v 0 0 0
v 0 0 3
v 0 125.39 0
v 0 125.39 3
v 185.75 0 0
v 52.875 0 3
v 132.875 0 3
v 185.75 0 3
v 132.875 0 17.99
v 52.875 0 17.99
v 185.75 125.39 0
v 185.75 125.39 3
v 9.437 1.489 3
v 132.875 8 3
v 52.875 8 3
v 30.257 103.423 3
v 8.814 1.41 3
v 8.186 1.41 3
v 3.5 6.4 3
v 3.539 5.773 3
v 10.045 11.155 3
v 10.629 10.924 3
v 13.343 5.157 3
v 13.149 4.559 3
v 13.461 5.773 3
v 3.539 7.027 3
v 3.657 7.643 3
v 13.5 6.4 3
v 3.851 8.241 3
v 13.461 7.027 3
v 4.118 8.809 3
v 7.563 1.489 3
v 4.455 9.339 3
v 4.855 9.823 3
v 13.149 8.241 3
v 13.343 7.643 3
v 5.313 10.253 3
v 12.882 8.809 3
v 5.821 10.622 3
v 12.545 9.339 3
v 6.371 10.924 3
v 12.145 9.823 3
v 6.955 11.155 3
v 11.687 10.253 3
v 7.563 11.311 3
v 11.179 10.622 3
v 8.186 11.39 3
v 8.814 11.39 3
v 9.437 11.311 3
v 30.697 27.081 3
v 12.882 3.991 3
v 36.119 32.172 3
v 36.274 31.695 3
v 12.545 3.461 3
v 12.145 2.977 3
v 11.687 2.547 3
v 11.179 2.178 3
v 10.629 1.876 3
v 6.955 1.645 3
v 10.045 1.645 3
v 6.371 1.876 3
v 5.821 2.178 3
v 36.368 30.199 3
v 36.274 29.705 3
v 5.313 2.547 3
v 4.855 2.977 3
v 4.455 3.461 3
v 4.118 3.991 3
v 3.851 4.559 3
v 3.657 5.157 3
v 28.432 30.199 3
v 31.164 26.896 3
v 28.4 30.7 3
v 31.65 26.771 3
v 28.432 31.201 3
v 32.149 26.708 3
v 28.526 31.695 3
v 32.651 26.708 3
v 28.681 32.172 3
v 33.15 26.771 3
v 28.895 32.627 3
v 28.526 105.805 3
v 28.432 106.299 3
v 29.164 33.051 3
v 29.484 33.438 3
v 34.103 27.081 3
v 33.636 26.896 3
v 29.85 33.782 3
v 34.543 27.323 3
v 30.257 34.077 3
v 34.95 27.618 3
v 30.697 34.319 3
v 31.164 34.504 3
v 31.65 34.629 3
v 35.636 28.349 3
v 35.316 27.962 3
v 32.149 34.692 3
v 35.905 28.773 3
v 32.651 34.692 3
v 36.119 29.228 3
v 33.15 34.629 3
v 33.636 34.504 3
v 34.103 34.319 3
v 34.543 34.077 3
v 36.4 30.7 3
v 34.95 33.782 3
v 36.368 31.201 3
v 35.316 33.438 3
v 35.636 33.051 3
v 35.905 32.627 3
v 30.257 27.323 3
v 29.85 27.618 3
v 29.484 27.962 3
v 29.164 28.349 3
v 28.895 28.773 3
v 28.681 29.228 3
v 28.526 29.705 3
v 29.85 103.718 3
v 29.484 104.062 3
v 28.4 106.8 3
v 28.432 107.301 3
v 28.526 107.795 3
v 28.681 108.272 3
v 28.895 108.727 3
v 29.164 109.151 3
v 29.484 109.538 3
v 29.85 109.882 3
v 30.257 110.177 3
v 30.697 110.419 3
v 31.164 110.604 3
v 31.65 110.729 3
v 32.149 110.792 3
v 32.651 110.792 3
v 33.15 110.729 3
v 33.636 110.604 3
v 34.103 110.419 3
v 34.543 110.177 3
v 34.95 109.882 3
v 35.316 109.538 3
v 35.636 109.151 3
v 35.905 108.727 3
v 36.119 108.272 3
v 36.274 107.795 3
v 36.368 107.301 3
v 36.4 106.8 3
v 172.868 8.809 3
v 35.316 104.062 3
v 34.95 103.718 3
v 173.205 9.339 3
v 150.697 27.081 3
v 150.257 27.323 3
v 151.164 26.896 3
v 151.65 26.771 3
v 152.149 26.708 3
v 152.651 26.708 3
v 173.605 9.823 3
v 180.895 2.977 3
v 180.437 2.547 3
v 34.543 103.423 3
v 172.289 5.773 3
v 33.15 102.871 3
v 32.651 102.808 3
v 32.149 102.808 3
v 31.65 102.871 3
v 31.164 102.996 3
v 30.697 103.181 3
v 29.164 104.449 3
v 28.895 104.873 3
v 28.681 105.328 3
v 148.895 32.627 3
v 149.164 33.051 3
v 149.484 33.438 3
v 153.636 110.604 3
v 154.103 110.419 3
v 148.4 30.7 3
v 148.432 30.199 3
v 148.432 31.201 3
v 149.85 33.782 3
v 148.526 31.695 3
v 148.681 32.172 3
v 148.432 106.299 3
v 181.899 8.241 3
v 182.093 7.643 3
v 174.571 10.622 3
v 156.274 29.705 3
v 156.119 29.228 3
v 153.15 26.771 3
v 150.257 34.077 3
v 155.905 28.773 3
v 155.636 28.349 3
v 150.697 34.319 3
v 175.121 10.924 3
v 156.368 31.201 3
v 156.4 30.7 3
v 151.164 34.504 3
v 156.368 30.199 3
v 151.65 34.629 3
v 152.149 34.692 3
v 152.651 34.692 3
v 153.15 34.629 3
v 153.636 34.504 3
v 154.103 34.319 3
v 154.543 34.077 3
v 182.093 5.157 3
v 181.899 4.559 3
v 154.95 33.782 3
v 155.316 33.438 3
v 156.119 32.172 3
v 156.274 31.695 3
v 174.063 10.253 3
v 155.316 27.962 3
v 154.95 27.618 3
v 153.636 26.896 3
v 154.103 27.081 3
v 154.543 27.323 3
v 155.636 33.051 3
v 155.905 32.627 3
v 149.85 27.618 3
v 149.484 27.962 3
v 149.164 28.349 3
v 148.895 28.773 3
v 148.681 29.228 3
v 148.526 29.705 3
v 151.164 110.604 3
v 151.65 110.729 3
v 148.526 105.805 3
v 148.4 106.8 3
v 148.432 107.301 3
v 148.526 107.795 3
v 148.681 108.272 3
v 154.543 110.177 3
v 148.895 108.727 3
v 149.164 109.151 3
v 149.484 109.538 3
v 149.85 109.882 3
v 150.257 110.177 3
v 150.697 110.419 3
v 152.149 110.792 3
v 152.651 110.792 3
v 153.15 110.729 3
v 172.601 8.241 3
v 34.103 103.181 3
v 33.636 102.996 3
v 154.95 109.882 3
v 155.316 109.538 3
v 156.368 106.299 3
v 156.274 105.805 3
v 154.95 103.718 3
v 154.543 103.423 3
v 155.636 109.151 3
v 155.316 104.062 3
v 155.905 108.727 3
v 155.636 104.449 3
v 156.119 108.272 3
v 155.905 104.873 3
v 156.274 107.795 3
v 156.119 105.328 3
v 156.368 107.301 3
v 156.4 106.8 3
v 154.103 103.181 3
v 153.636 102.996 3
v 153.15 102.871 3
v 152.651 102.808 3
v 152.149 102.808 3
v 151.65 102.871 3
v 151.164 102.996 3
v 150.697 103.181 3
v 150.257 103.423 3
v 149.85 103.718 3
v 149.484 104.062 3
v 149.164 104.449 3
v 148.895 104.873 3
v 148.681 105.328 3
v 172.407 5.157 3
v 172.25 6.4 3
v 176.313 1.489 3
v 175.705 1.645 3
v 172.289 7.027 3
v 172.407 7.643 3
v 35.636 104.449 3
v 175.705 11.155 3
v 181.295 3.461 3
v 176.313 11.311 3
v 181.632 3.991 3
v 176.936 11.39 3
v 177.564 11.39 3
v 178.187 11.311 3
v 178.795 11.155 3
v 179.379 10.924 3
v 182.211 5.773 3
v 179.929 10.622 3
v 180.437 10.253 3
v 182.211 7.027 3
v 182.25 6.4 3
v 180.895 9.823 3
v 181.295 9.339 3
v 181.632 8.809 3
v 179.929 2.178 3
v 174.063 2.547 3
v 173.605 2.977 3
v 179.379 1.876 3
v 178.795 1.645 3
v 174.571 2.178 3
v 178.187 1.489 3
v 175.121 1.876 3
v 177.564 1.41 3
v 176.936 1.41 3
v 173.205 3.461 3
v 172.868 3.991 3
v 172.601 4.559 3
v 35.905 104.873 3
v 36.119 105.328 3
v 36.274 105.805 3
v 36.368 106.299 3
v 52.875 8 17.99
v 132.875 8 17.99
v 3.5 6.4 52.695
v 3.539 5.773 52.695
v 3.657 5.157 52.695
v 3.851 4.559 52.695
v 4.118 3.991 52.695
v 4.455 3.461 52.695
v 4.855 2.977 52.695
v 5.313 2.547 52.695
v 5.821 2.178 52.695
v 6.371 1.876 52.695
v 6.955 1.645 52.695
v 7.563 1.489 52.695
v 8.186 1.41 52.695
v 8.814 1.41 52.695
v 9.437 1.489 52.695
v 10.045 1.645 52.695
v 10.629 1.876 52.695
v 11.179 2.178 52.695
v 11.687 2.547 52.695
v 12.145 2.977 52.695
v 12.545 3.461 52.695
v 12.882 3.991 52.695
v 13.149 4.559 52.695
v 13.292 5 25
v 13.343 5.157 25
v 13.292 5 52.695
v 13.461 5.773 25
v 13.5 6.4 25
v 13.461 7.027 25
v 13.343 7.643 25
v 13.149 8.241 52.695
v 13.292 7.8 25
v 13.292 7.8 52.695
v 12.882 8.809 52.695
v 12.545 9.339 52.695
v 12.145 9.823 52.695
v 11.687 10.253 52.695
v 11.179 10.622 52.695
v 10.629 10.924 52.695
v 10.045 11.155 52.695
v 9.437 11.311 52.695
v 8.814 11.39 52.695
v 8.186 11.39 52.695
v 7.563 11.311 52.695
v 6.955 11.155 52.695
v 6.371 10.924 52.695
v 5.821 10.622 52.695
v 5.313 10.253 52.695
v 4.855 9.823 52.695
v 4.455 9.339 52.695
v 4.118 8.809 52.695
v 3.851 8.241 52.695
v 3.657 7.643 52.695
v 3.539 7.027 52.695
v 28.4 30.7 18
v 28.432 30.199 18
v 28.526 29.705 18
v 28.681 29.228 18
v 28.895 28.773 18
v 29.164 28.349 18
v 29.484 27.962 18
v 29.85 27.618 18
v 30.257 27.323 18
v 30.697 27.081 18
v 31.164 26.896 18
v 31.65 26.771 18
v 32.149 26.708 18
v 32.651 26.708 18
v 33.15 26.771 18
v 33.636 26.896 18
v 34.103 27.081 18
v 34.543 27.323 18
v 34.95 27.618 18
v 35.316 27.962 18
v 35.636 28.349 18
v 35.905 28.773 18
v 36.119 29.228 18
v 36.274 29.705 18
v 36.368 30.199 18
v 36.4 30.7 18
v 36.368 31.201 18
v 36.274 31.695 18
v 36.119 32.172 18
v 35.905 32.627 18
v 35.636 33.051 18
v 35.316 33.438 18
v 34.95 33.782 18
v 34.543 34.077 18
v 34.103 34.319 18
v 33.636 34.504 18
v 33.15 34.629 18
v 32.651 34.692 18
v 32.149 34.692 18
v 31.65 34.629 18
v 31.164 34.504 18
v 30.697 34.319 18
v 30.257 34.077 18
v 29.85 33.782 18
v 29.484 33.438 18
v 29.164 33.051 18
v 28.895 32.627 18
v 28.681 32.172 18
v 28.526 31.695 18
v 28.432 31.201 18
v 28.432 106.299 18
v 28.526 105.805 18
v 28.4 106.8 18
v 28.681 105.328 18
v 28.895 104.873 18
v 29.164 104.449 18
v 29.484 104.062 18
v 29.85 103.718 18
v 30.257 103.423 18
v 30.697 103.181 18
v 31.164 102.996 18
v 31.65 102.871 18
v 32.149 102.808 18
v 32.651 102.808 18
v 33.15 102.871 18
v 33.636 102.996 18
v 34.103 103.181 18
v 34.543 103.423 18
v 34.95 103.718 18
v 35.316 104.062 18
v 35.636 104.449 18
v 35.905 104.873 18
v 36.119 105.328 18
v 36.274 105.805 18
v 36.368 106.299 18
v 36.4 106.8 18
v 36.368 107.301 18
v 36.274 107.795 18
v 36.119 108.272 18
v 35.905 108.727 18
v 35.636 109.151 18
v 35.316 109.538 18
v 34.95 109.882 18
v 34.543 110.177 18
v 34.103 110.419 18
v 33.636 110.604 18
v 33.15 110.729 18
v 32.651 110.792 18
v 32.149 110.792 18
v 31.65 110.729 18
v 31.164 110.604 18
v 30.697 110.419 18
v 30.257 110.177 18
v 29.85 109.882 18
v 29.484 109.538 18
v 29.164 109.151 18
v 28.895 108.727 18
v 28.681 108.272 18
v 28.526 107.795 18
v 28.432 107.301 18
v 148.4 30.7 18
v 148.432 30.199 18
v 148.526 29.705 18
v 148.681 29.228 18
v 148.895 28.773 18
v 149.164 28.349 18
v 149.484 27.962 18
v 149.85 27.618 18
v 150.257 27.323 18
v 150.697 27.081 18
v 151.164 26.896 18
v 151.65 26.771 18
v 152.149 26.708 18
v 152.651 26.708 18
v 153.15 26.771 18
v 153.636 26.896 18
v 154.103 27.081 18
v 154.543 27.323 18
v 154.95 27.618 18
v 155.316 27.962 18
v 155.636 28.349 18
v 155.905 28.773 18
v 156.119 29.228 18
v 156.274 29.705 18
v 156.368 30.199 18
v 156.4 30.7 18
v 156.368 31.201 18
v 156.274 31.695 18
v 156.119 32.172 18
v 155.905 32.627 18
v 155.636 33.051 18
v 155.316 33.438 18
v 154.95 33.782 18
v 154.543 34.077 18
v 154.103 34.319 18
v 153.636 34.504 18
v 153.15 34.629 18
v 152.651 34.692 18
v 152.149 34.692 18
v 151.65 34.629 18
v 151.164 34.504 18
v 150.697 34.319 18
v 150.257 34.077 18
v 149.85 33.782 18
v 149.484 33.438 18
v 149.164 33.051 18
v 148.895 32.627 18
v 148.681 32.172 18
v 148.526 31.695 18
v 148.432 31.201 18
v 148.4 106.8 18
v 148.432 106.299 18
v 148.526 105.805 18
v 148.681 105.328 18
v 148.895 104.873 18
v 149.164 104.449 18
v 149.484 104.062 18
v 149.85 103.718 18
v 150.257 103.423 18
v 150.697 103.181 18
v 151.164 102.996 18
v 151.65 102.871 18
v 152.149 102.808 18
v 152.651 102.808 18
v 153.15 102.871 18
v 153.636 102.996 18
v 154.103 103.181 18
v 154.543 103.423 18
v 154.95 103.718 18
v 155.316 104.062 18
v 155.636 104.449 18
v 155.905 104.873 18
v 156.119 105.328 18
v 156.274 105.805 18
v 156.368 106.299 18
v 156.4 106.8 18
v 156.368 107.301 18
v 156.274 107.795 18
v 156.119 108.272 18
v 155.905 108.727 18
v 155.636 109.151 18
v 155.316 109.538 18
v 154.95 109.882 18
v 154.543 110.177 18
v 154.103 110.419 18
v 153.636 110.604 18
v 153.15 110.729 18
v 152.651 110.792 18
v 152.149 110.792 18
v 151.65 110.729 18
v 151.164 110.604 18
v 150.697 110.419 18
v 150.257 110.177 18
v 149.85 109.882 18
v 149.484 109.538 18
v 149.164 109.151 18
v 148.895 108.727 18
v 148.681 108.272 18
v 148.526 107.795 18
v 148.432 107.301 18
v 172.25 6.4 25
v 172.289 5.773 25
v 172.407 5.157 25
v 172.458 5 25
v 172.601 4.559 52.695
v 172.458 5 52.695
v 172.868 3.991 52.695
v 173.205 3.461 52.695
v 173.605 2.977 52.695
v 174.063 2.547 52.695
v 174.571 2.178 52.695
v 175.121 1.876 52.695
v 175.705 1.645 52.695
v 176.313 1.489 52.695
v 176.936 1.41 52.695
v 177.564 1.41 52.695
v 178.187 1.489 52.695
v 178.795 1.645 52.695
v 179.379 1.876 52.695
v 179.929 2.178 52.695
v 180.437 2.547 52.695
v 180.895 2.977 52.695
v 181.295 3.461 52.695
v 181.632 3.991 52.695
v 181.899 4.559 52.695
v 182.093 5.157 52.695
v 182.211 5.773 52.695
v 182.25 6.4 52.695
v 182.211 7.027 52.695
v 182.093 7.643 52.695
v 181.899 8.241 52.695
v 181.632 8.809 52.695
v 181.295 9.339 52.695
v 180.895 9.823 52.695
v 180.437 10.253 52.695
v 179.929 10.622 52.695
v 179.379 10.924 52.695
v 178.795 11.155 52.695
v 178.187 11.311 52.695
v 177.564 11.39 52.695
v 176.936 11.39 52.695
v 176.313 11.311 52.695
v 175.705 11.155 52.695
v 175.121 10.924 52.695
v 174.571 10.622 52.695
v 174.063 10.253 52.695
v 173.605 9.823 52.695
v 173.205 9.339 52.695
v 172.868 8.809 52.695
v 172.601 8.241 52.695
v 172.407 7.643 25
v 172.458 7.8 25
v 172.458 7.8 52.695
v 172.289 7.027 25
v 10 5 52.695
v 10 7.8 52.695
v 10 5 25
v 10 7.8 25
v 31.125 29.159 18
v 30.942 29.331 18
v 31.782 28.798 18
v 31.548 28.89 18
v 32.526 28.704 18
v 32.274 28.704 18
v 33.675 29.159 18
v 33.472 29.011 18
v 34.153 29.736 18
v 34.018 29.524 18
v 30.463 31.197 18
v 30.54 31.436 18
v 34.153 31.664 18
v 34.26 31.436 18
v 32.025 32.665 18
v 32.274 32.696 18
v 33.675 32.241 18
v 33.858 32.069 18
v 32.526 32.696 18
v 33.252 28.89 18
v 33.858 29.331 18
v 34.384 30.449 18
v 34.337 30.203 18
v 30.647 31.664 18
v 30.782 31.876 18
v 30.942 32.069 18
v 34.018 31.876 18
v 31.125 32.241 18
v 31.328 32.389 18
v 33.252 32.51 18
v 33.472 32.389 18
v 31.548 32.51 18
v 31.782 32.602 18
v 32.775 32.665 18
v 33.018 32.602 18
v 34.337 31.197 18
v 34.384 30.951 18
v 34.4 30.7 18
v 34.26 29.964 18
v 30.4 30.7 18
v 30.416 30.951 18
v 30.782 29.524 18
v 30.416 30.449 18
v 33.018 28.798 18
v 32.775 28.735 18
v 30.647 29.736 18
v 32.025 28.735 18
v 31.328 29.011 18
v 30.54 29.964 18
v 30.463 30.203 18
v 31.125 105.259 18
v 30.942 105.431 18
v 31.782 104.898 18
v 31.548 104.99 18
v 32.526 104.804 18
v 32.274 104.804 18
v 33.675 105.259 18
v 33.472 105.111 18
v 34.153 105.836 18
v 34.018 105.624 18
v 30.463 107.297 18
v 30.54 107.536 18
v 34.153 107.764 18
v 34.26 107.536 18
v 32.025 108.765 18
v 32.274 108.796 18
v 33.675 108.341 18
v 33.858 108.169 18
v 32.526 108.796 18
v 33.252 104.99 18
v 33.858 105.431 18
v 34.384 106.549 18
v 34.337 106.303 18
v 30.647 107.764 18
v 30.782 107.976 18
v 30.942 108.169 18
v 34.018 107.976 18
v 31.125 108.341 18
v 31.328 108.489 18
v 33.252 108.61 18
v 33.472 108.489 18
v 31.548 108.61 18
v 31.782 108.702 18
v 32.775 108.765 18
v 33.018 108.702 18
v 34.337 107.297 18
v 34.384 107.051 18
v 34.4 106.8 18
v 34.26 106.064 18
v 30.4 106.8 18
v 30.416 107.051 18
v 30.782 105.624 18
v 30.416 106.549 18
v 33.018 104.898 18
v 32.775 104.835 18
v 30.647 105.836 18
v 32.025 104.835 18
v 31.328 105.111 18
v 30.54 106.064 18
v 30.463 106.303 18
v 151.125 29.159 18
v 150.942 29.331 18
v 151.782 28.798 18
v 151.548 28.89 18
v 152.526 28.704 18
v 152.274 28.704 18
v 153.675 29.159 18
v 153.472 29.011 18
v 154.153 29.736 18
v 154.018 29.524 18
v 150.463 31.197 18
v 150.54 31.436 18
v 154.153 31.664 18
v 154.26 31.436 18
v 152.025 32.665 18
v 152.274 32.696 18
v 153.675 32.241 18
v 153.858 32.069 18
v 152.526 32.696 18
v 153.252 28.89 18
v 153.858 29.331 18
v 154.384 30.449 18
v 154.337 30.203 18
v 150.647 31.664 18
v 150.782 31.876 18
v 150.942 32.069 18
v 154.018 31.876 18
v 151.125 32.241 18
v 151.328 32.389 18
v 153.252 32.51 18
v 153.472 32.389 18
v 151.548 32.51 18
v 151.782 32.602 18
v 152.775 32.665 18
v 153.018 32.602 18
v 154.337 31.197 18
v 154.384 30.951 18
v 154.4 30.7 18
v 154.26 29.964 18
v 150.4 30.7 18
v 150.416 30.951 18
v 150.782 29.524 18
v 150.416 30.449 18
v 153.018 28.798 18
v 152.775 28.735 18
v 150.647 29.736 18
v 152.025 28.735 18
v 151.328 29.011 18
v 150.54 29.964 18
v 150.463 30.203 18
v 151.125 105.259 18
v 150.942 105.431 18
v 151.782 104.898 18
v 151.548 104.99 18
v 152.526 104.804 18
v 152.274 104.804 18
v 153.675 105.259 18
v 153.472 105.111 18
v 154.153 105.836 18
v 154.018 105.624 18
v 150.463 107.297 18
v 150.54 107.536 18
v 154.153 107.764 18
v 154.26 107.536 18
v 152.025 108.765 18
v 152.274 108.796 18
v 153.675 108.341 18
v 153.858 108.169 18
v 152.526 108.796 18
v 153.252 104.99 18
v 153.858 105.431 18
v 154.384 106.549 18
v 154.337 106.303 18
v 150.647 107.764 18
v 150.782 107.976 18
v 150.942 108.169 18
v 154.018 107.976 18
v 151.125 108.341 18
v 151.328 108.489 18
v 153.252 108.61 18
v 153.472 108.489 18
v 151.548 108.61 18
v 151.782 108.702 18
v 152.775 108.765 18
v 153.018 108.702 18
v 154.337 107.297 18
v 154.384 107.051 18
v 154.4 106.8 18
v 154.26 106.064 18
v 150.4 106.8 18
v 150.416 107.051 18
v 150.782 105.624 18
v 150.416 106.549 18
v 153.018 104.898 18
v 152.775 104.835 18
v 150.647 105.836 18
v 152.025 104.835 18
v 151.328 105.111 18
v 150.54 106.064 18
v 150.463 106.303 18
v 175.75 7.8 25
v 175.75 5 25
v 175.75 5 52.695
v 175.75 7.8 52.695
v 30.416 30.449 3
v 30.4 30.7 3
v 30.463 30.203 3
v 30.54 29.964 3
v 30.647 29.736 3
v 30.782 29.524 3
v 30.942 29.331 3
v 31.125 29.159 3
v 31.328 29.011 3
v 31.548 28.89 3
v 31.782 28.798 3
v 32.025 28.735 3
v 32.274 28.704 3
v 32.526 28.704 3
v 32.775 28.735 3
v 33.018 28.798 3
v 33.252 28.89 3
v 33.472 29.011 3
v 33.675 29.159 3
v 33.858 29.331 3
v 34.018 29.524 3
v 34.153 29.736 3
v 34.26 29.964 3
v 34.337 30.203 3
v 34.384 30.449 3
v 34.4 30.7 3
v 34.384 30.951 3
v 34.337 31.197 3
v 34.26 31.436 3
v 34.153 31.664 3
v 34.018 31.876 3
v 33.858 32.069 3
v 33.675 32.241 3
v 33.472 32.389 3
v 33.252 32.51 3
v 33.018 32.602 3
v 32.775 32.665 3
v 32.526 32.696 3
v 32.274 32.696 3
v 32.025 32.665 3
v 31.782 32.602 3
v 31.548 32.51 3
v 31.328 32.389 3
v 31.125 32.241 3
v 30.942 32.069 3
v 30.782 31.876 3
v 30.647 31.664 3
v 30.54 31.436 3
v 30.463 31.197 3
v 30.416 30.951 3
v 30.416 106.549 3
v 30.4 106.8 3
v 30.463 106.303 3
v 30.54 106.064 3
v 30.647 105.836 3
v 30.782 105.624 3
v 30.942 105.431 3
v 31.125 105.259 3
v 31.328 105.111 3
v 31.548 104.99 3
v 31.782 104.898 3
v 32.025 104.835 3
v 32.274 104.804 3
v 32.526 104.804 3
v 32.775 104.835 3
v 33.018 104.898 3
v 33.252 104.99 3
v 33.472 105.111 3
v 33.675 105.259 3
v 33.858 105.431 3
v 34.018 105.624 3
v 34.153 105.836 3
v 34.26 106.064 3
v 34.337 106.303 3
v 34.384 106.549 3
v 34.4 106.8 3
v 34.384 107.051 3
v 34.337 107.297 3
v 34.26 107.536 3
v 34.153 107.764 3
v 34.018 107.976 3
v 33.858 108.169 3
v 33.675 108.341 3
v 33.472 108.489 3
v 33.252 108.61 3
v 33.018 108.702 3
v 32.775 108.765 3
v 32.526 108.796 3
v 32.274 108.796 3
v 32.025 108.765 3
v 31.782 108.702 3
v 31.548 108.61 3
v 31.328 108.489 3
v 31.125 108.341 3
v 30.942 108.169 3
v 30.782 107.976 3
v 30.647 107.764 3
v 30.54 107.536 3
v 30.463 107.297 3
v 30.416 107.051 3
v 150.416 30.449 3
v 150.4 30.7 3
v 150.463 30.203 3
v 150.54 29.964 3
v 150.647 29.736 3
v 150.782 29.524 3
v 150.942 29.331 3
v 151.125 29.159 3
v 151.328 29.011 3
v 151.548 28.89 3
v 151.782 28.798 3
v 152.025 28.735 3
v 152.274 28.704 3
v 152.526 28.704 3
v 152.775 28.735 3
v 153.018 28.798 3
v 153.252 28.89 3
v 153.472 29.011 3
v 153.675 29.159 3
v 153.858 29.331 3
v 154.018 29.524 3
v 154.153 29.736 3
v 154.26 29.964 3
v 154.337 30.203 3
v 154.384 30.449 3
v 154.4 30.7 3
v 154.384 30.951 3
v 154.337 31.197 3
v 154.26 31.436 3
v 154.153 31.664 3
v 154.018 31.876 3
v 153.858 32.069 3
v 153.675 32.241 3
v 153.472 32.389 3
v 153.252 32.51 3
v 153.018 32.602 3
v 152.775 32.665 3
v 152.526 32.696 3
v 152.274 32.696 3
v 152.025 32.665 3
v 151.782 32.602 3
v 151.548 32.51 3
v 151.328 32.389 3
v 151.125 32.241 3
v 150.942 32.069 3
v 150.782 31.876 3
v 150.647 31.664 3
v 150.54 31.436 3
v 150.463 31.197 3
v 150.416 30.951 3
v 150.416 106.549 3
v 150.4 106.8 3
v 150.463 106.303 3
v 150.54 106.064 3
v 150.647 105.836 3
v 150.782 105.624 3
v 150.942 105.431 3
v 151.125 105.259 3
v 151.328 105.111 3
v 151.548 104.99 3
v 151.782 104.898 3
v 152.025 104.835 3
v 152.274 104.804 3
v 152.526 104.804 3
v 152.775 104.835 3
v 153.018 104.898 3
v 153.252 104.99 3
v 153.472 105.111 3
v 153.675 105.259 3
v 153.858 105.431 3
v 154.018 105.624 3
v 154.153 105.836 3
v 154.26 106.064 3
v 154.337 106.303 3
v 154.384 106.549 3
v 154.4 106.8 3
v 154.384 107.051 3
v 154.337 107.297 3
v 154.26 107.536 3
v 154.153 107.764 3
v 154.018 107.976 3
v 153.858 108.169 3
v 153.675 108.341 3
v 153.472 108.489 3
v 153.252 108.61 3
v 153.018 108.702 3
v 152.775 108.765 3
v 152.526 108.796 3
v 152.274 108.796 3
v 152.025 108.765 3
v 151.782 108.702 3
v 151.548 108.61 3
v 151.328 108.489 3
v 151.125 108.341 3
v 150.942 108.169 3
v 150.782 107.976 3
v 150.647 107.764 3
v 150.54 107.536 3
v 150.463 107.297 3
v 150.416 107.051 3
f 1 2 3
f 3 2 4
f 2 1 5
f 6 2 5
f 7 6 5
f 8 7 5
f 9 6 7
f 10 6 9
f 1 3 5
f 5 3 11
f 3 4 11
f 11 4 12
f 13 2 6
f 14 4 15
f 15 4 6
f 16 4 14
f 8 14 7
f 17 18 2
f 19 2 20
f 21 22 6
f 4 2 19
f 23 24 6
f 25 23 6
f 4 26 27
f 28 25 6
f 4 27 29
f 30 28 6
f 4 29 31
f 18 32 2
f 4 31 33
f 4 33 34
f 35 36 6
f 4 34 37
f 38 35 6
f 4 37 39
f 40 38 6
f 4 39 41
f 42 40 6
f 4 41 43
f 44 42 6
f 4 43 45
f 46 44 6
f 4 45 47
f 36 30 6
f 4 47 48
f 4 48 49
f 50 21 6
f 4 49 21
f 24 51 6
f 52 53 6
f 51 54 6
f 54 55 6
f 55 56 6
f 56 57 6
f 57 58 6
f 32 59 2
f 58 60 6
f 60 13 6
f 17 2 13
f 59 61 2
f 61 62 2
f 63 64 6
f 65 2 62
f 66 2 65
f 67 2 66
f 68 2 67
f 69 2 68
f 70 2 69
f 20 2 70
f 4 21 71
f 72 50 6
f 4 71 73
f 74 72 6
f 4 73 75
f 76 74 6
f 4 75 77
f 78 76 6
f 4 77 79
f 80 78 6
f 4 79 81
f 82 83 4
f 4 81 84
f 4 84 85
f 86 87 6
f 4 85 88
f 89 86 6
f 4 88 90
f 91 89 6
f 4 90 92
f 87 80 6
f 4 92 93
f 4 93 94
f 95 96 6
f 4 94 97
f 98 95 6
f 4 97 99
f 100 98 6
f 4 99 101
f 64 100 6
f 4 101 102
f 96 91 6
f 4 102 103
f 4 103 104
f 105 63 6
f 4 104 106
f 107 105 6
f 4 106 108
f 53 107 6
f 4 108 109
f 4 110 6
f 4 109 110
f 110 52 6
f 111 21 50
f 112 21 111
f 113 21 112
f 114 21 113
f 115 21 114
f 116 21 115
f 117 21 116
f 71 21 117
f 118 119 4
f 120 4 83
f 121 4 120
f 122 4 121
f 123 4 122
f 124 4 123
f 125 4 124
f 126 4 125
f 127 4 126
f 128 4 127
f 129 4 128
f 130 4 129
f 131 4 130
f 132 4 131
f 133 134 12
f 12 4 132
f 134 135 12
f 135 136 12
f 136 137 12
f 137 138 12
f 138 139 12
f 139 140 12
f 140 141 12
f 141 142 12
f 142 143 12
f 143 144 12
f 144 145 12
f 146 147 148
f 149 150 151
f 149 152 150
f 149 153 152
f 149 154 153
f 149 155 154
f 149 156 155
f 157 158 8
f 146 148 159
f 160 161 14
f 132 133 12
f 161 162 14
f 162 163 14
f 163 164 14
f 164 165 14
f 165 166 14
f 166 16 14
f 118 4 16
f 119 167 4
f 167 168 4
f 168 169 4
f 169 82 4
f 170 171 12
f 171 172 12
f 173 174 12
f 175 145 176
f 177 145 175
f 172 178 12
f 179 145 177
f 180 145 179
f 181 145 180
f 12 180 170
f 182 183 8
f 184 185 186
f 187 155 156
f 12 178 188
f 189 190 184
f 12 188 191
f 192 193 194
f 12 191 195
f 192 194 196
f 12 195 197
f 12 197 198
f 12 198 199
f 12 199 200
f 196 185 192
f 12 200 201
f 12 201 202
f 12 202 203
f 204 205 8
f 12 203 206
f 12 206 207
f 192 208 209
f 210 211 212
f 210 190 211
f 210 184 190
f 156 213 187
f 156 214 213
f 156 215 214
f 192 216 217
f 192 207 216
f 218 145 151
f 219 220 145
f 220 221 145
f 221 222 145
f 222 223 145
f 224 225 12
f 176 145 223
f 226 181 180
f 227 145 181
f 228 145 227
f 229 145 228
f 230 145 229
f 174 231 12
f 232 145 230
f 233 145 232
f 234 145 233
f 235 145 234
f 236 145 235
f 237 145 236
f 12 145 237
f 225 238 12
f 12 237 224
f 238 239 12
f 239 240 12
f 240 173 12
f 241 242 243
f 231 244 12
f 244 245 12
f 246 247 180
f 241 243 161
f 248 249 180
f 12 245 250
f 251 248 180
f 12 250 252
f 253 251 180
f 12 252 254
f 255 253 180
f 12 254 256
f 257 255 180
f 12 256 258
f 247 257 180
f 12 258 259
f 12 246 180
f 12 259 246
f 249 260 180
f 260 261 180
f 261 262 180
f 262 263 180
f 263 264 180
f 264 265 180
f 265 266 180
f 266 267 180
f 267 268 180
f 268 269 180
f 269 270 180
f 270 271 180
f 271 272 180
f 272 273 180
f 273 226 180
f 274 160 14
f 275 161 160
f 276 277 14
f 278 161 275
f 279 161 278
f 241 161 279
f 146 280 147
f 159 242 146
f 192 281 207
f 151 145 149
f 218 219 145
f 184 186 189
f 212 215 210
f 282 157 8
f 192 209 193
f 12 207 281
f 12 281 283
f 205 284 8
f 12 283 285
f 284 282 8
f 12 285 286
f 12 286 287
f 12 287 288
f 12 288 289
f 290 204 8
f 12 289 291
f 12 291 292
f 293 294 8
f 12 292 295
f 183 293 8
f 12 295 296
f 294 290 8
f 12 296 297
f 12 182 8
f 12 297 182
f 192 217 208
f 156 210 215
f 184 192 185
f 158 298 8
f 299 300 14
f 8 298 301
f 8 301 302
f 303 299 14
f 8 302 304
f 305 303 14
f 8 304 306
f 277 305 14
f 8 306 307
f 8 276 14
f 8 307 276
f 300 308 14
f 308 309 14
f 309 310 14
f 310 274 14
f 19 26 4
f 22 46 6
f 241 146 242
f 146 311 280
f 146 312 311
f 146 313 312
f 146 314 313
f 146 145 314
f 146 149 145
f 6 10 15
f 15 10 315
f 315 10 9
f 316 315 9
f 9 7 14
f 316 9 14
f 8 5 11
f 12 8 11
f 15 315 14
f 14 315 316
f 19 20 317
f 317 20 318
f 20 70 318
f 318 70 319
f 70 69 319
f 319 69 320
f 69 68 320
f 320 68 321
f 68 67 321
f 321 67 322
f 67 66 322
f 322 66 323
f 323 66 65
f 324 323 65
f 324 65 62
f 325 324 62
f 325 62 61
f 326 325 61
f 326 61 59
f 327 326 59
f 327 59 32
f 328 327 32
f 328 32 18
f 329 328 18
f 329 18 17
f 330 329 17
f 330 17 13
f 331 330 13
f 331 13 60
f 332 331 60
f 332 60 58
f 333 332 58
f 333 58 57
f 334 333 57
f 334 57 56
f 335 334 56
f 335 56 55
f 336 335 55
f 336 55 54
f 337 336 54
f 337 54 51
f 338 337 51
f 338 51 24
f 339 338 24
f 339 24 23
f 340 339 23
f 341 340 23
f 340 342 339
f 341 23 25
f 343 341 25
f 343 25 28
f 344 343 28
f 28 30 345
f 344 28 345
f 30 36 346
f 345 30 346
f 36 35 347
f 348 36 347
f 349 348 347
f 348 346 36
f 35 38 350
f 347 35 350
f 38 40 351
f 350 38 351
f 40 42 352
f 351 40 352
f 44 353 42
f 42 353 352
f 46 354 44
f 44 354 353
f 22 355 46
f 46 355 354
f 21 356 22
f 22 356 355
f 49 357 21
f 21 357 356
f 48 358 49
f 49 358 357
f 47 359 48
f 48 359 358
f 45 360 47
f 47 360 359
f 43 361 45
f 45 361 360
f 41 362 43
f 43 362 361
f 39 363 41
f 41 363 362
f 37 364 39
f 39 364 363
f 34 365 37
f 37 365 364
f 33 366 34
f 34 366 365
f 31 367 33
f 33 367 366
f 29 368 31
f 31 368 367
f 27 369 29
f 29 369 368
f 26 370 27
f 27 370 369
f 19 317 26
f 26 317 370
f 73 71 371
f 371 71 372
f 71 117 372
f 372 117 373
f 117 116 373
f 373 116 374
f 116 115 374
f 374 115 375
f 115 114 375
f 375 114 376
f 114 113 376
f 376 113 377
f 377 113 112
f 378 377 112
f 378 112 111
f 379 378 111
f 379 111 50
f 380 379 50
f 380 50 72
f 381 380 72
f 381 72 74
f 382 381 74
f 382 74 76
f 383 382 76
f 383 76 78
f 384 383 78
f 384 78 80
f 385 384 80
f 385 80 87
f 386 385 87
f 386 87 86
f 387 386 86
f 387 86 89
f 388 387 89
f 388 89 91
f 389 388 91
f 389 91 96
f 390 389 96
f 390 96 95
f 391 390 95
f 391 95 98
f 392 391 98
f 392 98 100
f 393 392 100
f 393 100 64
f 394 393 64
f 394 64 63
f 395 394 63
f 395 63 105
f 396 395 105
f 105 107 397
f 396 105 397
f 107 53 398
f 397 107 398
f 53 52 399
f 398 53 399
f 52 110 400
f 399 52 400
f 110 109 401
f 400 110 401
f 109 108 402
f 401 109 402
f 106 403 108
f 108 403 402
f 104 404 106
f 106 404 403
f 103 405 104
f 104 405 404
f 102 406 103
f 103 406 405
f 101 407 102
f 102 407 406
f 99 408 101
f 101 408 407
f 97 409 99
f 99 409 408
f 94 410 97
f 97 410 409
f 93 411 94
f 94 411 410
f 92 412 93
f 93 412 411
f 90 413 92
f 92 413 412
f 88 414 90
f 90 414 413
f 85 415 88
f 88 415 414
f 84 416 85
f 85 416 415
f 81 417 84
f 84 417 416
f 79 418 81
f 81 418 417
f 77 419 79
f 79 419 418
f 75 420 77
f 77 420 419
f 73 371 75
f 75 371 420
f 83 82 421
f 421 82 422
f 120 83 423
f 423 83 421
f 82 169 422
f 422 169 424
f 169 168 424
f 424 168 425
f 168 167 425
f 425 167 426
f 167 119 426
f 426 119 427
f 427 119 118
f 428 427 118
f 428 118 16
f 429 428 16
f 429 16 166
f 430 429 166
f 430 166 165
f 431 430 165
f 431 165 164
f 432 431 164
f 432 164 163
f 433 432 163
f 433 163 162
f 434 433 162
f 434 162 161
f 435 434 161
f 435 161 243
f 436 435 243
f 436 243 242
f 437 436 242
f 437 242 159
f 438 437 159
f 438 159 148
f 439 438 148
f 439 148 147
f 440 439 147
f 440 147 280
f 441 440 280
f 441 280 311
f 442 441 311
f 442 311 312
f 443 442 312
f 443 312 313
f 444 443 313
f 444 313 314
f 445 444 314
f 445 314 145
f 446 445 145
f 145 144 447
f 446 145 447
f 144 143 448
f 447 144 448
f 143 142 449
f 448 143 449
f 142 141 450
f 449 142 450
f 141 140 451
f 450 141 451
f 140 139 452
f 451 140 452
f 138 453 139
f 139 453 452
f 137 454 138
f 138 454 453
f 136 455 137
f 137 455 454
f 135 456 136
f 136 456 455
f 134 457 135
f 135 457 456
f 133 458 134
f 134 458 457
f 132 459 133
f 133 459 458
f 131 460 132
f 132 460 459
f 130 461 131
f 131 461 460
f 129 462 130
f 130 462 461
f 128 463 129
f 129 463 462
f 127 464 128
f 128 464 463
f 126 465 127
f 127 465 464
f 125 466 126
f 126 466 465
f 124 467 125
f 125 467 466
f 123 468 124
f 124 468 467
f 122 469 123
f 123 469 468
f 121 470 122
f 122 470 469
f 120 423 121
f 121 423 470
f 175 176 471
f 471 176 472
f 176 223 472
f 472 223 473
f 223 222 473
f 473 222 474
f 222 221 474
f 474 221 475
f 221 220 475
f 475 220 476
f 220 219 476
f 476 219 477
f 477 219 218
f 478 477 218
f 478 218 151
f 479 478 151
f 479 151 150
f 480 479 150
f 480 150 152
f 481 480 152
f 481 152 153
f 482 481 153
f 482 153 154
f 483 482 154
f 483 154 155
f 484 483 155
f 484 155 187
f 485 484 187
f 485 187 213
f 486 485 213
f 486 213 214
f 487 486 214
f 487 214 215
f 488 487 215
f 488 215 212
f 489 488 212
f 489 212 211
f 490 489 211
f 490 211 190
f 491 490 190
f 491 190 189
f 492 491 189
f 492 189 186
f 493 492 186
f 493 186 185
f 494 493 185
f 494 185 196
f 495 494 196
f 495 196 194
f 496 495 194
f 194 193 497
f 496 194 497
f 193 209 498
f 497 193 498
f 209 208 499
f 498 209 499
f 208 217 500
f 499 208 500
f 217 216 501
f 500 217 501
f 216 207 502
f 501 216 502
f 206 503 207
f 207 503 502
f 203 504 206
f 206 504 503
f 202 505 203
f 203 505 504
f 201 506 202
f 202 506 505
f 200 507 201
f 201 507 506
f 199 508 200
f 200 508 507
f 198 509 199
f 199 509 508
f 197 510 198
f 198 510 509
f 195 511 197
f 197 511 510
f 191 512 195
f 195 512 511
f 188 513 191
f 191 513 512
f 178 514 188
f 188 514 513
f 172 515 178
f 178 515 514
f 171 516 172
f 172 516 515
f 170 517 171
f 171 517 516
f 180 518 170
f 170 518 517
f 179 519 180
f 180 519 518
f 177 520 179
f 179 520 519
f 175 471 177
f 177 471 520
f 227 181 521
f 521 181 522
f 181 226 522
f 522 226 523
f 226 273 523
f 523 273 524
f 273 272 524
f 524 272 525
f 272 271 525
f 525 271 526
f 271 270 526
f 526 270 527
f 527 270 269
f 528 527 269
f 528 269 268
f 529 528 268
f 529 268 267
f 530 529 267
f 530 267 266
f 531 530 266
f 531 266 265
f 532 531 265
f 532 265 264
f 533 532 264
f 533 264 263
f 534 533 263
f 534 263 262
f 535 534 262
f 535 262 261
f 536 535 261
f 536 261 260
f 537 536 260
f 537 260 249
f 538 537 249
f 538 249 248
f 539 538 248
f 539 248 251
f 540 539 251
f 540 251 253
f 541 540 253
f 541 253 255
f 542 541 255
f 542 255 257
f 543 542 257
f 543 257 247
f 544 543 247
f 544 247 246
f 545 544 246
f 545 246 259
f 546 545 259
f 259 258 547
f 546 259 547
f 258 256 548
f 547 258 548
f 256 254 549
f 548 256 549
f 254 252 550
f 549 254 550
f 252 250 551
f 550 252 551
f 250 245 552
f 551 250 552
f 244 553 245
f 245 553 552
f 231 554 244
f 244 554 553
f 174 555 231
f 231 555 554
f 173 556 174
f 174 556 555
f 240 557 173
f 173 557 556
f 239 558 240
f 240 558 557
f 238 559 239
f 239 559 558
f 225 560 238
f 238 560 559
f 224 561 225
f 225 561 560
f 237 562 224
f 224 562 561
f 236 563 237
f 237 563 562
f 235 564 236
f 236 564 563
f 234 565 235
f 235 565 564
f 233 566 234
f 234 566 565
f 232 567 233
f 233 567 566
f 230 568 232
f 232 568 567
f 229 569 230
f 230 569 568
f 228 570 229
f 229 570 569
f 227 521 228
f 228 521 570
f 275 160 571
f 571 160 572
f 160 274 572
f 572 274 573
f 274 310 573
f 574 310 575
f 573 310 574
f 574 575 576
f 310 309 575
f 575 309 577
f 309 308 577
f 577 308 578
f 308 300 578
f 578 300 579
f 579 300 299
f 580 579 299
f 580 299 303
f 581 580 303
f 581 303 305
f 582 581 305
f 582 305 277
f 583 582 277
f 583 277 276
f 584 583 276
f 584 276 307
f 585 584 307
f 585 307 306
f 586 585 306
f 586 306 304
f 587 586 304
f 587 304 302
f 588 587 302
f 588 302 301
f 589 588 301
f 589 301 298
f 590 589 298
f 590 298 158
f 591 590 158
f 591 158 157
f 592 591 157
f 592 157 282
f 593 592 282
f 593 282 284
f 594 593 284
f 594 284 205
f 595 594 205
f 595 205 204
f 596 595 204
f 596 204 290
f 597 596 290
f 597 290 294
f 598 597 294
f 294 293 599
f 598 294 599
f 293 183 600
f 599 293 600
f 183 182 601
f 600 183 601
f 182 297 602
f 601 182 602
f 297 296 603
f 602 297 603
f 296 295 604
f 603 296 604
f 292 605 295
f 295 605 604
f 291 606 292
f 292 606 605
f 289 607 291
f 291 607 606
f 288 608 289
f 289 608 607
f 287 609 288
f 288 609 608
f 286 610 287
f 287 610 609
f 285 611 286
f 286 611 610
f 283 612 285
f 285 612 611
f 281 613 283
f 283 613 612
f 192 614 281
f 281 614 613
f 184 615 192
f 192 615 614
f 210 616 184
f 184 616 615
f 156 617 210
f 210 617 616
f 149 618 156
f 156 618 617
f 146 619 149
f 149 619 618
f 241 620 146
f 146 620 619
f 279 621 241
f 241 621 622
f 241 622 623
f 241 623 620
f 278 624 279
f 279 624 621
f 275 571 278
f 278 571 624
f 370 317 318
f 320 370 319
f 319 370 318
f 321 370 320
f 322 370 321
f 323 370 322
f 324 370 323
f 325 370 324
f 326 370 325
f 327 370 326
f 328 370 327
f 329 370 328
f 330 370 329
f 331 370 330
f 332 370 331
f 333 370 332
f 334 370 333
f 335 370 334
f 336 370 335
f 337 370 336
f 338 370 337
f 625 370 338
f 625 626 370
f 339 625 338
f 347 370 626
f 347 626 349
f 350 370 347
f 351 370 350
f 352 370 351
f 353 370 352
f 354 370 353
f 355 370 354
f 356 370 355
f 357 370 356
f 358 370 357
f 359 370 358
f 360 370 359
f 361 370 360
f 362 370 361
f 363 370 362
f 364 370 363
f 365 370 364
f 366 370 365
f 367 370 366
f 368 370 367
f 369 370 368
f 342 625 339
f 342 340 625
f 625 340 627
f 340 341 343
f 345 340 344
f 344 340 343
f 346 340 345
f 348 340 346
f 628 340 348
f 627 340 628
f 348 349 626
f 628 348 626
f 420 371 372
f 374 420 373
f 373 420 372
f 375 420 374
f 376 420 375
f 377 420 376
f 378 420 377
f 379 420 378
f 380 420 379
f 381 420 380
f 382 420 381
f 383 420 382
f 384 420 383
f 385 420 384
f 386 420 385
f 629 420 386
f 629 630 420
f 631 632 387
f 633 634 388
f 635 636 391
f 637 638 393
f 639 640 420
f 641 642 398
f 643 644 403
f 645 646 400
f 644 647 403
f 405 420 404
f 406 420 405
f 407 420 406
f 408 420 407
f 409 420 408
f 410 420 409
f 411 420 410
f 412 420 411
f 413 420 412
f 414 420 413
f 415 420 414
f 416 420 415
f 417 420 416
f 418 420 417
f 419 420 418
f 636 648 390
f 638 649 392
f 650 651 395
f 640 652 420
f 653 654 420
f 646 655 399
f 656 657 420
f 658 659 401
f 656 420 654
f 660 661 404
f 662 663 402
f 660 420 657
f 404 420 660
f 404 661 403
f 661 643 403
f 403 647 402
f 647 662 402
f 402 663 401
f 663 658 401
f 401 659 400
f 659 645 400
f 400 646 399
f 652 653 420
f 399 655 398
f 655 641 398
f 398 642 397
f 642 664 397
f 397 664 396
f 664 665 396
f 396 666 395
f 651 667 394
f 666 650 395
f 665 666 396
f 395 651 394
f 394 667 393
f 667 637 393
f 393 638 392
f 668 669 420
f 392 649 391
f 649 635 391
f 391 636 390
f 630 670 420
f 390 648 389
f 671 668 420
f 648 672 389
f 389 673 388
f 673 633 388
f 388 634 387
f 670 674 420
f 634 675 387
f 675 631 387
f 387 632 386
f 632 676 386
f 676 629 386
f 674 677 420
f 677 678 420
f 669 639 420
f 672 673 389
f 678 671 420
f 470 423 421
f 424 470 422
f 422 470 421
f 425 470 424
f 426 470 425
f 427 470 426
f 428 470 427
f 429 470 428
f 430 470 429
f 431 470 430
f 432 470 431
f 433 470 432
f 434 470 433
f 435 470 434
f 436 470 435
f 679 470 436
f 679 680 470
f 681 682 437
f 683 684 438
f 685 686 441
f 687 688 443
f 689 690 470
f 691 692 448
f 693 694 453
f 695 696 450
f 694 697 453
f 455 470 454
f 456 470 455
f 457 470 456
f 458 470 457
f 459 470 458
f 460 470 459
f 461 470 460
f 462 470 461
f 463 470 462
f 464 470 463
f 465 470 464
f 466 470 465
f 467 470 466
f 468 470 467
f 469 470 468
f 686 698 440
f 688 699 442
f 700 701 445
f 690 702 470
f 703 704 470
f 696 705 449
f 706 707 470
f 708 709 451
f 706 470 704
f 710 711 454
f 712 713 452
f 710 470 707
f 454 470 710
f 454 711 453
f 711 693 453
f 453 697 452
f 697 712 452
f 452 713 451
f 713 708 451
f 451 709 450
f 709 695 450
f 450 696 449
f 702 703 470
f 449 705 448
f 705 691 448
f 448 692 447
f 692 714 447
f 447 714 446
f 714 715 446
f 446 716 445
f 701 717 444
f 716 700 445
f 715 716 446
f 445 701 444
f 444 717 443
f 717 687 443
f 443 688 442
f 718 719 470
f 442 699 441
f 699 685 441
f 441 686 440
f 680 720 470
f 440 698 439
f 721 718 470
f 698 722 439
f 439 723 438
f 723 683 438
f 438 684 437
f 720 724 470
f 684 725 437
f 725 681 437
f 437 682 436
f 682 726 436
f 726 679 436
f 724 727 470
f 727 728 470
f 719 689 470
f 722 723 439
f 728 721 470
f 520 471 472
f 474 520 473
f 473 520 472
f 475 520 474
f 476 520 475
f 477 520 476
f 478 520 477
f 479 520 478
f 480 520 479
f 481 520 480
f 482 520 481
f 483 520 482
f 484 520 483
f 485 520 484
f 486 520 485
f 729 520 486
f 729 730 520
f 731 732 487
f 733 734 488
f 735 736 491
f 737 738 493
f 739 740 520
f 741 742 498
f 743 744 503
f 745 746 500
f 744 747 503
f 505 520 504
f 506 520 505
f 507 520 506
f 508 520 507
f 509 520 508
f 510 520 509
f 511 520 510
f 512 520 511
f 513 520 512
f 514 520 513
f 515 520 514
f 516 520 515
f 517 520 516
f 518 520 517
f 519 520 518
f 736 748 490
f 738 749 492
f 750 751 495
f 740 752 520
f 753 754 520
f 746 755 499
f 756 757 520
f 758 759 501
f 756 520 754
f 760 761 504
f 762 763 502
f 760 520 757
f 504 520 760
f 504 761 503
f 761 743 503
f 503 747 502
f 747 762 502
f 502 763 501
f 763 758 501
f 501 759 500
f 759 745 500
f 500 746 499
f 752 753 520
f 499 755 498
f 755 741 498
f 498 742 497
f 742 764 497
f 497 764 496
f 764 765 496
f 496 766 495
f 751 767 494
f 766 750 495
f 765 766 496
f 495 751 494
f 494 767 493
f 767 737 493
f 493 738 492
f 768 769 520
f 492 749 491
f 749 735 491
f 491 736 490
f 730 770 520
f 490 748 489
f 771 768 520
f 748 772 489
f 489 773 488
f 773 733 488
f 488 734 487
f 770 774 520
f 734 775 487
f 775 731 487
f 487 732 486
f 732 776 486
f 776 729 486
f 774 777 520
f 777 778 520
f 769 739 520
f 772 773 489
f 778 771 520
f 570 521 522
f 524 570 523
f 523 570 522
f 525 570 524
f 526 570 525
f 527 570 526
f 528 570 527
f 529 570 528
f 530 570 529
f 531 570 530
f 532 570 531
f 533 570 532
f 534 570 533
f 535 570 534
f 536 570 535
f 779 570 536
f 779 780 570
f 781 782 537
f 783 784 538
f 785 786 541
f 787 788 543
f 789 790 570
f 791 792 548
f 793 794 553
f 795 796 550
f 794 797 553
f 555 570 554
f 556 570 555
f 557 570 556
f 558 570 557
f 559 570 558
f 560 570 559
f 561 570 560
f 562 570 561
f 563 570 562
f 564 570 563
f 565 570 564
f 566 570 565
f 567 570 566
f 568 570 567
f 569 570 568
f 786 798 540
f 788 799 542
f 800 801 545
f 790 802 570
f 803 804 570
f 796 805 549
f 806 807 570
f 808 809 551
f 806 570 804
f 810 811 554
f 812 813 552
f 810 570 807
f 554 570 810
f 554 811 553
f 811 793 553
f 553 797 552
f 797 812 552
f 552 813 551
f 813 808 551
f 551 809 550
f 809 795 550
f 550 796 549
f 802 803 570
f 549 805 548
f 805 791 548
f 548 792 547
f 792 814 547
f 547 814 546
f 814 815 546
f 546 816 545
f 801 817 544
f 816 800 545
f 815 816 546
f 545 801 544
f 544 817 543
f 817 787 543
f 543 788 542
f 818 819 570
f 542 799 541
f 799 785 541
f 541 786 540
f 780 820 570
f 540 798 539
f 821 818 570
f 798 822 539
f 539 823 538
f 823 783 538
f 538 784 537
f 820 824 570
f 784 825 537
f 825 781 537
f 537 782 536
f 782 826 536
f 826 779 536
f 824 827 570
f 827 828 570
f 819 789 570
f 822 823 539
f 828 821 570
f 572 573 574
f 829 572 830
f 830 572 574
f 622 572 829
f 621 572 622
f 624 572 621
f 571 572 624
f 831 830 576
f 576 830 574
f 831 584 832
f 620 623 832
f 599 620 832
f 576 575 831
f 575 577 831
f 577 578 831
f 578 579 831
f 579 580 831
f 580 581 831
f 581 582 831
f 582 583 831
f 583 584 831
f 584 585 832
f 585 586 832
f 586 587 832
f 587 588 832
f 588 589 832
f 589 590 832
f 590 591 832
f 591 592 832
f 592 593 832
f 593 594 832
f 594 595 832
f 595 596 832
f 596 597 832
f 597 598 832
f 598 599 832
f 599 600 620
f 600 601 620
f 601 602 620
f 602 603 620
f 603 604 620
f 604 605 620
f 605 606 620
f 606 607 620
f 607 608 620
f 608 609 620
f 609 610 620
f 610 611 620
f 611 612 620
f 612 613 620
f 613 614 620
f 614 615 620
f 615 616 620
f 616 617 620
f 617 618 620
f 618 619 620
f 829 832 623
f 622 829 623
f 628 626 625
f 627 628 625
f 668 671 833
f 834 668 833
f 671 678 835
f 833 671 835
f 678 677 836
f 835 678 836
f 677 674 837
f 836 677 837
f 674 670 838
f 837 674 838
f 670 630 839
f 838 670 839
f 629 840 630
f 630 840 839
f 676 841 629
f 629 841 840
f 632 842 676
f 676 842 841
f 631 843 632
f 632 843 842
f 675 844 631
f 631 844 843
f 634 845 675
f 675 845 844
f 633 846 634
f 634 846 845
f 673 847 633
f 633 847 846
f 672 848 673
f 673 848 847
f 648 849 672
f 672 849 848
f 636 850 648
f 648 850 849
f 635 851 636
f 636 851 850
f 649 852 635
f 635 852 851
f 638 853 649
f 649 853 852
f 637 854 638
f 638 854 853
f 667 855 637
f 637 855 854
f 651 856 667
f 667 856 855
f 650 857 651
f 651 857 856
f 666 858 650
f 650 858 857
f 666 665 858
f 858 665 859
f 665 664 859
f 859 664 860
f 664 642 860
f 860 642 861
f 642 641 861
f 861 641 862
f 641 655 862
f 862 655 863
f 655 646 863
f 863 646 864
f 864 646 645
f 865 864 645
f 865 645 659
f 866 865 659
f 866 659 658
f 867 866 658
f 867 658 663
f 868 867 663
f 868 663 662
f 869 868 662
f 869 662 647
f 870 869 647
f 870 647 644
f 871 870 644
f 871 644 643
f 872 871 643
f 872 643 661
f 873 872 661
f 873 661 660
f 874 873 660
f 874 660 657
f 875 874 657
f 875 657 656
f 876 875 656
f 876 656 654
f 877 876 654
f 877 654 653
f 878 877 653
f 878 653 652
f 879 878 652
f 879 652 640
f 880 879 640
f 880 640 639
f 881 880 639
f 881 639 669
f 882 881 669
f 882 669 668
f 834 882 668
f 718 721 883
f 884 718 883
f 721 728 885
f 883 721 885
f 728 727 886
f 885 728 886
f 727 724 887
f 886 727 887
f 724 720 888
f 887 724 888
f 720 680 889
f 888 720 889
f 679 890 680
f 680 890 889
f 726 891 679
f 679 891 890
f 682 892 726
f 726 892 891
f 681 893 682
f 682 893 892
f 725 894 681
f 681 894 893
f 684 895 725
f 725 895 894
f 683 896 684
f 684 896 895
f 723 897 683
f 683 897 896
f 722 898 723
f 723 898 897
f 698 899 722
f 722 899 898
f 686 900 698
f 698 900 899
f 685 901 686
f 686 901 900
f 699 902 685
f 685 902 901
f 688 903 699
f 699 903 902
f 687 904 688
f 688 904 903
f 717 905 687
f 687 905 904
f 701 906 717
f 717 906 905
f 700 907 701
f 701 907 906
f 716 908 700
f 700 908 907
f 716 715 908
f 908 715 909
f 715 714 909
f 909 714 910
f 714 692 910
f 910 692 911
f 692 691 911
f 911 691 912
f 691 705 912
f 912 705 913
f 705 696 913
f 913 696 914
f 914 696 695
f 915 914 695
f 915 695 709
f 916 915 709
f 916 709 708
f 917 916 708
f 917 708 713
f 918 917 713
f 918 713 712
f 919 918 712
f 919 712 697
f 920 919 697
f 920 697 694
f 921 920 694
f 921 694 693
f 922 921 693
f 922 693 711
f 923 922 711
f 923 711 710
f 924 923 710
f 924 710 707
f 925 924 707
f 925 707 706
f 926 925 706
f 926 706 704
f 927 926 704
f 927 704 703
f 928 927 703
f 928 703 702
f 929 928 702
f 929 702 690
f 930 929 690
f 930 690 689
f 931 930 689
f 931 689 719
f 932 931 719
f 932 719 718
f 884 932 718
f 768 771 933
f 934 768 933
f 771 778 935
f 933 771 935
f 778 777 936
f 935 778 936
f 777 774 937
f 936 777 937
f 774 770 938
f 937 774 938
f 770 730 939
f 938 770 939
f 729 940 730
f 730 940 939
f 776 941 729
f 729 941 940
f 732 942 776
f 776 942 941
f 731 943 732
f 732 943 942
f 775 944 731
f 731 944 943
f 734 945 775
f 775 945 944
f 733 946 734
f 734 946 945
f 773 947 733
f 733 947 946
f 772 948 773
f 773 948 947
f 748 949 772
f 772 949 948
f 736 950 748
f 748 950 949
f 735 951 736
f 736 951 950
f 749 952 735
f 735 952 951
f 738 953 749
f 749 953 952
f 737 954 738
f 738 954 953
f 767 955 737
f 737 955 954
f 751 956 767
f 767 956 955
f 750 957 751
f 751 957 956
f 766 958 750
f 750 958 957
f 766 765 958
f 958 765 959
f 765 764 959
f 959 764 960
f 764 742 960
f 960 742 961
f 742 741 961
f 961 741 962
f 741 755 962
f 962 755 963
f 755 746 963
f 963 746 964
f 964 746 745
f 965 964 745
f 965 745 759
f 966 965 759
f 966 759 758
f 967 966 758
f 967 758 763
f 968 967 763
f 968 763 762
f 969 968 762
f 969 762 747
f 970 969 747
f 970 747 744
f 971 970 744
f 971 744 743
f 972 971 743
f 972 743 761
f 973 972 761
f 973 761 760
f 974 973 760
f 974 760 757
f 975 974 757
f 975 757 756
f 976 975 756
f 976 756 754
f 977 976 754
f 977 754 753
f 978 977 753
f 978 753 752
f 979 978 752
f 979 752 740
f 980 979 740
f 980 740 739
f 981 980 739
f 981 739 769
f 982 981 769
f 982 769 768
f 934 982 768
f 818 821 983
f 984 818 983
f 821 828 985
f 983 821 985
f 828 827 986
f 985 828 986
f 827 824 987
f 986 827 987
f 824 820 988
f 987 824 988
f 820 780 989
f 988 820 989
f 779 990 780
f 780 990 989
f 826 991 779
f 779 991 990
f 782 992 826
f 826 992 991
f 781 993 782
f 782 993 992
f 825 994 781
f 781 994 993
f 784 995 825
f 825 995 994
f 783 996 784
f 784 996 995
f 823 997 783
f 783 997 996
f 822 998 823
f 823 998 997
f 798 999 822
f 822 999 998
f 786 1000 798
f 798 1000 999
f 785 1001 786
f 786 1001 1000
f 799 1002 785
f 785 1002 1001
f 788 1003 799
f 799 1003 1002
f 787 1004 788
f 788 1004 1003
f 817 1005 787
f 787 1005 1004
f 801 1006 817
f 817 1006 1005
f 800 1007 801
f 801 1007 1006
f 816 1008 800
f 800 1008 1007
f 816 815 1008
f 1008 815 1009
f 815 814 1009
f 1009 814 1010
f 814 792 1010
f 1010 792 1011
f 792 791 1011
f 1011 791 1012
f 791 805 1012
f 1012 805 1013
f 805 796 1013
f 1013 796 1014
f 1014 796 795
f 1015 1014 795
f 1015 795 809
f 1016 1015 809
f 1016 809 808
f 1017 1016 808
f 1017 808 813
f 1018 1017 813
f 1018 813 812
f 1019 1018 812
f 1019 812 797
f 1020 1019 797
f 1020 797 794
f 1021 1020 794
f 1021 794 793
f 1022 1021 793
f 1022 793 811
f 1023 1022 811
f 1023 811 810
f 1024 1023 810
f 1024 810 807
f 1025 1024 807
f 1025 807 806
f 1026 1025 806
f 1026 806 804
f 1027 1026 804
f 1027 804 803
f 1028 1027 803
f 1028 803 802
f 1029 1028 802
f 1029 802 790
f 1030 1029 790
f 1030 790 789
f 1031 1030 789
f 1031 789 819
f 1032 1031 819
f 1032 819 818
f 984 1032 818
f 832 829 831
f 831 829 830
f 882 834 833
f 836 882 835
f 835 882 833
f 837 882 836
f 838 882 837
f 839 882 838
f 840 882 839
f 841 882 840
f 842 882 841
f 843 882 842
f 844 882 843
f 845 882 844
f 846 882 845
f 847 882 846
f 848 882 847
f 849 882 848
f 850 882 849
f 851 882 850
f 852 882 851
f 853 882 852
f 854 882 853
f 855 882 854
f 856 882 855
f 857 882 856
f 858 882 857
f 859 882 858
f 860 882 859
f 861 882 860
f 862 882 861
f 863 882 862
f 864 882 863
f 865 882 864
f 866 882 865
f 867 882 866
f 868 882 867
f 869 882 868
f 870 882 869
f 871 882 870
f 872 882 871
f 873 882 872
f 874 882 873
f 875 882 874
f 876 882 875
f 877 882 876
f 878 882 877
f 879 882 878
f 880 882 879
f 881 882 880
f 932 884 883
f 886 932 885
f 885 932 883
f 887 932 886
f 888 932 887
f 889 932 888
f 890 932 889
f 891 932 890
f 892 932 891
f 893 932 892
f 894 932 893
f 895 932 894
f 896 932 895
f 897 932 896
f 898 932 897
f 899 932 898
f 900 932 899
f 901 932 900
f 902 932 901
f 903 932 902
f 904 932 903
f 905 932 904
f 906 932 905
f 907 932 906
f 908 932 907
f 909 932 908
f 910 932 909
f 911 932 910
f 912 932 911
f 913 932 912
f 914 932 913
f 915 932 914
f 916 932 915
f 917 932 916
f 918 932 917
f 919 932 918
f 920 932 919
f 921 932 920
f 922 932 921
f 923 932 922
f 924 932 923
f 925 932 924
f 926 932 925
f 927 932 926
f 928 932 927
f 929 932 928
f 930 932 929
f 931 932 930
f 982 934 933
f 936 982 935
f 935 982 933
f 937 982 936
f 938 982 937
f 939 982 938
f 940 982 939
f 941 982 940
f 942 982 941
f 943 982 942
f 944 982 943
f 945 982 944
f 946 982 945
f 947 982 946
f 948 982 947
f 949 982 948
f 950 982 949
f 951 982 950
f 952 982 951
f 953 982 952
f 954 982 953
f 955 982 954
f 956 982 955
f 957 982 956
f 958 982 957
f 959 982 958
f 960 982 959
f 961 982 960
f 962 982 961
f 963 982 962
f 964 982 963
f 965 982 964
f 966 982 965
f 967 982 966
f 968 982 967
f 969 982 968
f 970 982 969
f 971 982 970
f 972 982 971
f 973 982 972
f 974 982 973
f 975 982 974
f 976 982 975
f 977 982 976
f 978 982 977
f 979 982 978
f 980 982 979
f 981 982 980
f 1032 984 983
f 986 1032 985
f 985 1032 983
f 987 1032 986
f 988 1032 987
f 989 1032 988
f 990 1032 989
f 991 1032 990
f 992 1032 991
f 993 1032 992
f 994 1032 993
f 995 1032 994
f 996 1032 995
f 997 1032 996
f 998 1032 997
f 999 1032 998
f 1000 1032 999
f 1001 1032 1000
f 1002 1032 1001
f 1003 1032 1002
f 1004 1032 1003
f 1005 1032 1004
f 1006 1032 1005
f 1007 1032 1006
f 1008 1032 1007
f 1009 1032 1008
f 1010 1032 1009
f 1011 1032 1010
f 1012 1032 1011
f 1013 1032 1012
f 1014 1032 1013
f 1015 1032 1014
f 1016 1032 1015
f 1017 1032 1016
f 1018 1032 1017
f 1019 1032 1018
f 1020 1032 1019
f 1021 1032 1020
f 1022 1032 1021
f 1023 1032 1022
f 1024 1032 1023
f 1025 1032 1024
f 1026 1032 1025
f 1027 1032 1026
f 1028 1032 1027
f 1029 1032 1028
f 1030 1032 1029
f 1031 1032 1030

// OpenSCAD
$fn=50;

disp_l = 165.75;
disp_h = 105.39;
disp_w = 2.8;
disp_ribbon_w = 19.5;
disp_ribbon_offset = 78.06-(disp_ribbon_w/2);
disp_frame_s = 9;
disp_frame_nwe = 3.5;

pcb_w = 128.8;
pcb_h = 85.5;
pcb_space_above = 15;
pcb_space_below = 5;

pcb_drillhole_ll = [4.4, 4.7, 0];
pcb_drillhole_ul = [4.4, pcb_h-4.7, 0];

pcb_drillhole_lr = [pcb_w-4.4, 4.7, 0];
pcb_drillhole_ur = [pcb_w-4.4, pcb_h-4.7, 0];

pcb_display_offset = [28, 26, 0]; // guesswork and sloppy measurements

base_extra_w = 10;
plate_width = 3;
spacer_r = 4;

// base plate
module baseplate() {
cube([base_extra_w + disp_l + base_extra_w, base_extra_w + disp_h + base_extra_w, plate_width]);
}

module hollow_spacer(r1=spacer_r, r2=2, h=plate_width+pcb_space_above) {
	difference() {
	cylinder(r=r1, h=h);
	translate([0,0,-1]) cylinder(r=r2, h=h+2);
	}
}

module display () {
	cube([disp_l, disp_w, disp_h]);
}

// baseplate plus spacer for PCB
baseplate();
translate(pcb_display_offset) {
	translate(pcb_drillhole_ul) hollow_spacer();
	translate(pcb_drillhole_ur) hollow_spacer();
	translate(pcb_drillhole_ll) hollow_spacer();
	translate(pcb_drillhole_lr) hollow_spacer();
}

// display mount
difference() {
	union() {
		translate([base_extra_w/2+disp_frame_nwe, base_extra_w/2 + disp_w/2 , 0]) cylinder(r=base_extra_w/2,h=disp_h/2);
		translate([disp_l+base_extra_w*1.5-disp_frame_nwe, base_extra_w/2 + disp_w/2 , 0]) cylinder(r=base_extra_w/2,h=disp_h/2);
	}
	translate([base_extra_w, base_extra_w/2, 25]) display();
}

// controller mount
translate([base_extra_w + disp_l/2-40, 0, plate_width-0.01]) cube([80, 8, 15]);
